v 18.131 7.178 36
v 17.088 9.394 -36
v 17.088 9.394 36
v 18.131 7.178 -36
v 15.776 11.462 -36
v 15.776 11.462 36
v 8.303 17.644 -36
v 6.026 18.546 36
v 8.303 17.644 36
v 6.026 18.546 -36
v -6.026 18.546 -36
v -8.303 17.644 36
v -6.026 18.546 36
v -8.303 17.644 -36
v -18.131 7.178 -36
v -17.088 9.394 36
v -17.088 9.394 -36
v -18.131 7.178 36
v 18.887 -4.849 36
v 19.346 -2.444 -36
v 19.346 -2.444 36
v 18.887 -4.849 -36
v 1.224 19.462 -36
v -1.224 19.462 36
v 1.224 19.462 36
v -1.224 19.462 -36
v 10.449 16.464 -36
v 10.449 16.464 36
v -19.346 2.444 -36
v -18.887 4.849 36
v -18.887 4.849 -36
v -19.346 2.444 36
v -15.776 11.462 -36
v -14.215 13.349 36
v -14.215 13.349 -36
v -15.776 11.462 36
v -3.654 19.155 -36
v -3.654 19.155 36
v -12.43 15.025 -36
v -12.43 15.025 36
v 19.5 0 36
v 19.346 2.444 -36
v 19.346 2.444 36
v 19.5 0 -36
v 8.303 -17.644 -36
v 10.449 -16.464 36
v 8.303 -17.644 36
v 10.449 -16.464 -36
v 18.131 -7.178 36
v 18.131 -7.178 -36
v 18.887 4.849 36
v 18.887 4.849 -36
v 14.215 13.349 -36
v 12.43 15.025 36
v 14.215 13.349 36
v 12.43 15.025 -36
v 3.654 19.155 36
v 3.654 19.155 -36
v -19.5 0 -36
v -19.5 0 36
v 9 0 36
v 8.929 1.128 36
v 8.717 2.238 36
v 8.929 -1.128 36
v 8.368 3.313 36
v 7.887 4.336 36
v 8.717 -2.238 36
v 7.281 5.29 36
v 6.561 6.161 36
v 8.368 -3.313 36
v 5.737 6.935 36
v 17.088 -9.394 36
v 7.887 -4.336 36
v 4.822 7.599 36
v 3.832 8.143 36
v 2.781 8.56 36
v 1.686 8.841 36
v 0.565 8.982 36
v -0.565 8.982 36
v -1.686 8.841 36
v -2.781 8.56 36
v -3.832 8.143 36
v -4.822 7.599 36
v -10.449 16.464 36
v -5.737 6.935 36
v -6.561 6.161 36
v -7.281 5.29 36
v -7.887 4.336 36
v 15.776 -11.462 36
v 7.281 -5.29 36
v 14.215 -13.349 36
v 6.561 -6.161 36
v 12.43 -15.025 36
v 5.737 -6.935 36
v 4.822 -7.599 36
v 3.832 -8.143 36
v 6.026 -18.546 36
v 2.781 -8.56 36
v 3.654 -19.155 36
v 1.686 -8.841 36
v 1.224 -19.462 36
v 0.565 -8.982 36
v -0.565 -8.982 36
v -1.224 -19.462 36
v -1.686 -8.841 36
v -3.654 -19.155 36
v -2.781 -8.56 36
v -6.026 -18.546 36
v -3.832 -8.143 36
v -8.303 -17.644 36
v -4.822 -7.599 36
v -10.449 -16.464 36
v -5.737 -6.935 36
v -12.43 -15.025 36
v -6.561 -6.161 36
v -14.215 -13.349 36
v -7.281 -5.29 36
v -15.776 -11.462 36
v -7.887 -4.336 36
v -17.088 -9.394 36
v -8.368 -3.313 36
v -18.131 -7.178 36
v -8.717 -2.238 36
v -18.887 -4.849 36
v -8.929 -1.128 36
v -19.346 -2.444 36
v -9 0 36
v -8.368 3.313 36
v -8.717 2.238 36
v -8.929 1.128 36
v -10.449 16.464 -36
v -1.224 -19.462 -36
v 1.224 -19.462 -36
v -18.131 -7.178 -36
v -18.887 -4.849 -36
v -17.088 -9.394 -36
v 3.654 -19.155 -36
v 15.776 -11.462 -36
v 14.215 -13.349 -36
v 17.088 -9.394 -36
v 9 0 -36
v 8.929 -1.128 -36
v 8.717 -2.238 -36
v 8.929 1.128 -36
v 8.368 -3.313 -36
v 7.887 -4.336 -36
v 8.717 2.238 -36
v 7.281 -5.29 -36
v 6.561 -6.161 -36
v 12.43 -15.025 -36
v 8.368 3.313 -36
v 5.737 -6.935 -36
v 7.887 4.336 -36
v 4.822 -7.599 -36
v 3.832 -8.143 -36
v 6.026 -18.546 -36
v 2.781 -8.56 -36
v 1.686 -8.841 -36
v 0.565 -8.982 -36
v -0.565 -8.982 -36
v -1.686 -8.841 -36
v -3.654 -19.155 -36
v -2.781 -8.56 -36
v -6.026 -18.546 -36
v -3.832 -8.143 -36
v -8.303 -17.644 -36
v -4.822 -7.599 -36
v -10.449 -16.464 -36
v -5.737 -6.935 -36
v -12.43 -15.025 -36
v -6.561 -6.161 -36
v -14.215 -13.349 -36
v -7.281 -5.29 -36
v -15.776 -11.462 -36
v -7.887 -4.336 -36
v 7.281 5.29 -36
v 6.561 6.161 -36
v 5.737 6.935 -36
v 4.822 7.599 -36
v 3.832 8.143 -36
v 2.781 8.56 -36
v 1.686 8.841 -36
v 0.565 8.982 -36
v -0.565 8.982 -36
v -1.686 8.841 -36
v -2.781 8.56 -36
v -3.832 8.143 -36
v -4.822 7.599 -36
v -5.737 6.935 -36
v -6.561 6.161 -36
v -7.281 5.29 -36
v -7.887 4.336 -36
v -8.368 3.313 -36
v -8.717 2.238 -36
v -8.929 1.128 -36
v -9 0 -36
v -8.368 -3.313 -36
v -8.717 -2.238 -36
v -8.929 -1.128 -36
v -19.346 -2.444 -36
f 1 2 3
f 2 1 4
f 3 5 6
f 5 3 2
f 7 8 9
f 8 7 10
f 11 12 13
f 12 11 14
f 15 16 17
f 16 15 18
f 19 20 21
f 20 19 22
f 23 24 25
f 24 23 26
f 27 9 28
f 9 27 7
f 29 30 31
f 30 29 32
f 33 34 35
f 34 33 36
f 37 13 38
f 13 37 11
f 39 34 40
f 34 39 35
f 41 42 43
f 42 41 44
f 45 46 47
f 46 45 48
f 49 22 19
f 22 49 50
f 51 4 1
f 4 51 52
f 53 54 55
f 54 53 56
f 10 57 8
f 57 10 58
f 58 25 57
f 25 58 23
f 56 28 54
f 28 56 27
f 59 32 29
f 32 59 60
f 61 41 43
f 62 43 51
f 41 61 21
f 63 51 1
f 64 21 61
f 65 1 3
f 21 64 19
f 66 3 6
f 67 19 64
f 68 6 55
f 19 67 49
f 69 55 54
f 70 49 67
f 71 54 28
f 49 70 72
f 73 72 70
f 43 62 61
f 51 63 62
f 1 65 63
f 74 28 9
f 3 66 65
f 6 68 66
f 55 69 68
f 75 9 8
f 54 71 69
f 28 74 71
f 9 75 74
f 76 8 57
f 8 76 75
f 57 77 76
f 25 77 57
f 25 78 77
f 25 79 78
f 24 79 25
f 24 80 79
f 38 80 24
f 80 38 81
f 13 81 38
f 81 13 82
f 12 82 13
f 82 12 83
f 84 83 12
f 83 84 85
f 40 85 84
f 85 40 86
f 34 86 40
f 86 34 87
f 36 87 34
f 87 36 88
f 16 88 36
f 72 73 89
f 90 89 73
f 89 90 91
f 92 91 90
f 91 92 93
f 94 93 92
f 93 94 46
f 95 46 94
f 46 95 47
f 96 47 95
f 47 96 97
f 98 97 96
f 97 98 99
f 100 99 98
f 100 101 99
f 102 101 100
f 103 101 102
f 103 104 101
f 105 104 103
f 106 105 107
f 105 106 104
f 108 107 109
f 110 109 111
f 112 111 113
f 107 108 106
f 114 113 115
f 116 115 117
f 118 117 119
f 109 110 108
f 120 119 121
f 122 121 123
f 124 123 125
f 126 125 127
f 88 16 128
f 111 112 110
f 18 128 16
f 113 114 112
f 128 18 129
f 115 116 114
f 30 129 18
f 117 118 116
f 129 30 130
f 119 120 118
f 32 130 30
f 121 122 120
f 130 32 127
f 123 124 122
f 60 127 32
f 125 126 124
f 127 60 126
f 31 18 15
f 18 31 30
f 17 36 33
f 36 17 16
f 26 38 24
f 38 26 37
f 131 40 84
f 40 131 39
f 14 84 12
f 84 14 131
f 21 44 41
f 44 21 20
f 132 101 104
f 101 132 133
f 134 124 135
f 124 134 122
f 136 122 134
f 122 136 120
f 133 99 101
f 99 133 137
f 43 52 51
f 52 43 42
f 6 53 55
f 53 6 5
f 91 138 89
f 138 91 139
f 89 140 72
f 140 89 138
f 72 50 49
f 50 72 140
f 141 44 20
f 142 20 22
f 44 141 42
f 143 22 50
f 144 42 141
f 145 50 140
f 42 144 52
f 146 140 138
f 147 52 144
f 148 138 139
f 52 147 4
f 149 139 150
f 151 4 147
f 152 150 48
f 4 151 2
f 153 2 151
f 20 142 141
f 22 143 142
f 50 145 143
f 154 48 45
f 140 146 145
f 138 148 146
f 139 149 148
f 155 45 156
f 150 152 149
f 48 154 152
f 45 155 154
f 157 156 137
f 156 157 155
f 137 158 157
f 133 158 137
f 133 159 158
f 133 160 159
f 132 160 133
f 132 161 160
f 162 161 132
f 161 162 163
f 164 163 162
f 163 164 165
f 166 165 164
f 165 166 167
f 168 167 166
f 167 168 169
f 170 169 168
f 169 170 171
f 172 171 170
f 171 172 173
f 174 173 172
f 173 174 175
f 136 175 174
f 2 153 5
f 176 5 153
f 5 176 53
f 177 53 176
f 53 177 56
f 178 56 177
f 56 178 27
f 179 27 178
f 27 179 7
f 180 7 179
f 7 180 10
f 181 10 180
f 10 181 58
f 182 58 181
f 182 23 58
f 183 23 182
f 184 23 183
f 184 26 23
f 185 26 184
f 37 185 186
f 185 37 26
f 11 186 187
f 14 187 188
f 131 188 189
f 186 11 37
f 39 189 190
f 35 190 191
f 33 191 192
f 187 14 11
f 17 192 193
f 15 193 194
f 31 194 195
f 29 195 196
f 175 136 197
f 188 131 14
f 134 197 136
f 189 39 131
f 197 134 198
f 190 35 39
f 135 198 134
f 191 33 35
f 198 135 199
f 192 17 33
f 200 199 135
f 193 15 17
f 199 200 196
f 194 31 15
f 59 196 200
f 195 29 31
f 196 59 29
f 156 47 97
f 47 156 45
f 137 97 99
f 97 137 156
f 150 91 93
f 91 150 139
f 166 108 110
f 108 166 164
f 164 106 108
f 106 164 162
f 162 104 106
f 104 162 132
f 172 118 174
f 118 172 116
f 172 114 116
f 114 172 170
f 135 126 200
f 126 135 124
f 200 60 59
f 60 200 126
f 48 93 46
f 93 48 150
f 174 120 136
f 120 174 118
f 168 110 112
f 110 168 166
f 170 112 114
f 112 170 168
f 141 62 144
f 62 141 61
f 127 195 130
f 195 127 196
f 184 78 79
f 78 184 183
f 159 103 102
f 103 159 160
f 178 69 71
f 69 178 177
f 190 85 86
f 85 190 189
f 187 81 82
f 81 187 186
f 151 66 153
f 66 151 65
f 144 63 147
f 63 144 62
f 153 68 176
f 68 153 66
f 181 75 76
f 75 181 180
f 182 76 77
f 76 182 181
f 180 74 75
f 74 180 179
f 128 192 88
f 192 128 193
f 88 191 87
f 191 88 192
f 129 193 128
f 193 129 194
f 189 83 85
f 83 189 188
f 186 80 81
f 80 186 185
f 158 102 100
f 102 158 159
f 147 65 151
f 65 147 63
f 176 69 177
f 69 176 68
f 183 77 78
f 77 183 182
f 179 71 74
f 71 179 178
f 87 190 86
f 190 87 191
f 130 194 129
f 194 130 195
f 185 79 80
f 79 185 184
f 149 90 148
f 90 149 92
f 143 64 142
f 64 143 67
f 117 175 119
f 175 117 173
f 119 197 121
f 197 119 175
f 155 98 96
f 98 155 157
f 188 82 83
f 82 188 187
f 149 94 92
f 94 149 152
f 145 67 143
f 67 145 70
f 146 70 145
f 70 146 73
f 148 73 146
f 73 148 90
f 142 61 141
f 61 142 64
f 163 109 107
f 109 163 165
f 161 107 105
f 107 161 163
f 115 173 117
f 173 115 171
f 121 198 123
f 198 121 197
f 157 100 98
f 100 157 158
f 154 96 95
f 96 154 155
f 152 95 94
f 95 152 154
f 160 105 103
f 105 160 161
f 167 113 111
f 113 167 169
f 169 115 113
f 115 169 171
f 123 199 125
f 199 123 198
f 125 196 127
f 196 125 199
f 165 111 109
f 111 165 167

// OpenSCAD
$fn = 50;


difference() {
	union() {
		translate(v = [0, 0, -36.0000000000]) {
			cylinder(h = 72, r = 19.5000000000);
		}
	}
	union() {
		translate(v = [0, 0, -100.0000000000]) {
			cylinder(h = 200, r = 9);
		}
	}
}
